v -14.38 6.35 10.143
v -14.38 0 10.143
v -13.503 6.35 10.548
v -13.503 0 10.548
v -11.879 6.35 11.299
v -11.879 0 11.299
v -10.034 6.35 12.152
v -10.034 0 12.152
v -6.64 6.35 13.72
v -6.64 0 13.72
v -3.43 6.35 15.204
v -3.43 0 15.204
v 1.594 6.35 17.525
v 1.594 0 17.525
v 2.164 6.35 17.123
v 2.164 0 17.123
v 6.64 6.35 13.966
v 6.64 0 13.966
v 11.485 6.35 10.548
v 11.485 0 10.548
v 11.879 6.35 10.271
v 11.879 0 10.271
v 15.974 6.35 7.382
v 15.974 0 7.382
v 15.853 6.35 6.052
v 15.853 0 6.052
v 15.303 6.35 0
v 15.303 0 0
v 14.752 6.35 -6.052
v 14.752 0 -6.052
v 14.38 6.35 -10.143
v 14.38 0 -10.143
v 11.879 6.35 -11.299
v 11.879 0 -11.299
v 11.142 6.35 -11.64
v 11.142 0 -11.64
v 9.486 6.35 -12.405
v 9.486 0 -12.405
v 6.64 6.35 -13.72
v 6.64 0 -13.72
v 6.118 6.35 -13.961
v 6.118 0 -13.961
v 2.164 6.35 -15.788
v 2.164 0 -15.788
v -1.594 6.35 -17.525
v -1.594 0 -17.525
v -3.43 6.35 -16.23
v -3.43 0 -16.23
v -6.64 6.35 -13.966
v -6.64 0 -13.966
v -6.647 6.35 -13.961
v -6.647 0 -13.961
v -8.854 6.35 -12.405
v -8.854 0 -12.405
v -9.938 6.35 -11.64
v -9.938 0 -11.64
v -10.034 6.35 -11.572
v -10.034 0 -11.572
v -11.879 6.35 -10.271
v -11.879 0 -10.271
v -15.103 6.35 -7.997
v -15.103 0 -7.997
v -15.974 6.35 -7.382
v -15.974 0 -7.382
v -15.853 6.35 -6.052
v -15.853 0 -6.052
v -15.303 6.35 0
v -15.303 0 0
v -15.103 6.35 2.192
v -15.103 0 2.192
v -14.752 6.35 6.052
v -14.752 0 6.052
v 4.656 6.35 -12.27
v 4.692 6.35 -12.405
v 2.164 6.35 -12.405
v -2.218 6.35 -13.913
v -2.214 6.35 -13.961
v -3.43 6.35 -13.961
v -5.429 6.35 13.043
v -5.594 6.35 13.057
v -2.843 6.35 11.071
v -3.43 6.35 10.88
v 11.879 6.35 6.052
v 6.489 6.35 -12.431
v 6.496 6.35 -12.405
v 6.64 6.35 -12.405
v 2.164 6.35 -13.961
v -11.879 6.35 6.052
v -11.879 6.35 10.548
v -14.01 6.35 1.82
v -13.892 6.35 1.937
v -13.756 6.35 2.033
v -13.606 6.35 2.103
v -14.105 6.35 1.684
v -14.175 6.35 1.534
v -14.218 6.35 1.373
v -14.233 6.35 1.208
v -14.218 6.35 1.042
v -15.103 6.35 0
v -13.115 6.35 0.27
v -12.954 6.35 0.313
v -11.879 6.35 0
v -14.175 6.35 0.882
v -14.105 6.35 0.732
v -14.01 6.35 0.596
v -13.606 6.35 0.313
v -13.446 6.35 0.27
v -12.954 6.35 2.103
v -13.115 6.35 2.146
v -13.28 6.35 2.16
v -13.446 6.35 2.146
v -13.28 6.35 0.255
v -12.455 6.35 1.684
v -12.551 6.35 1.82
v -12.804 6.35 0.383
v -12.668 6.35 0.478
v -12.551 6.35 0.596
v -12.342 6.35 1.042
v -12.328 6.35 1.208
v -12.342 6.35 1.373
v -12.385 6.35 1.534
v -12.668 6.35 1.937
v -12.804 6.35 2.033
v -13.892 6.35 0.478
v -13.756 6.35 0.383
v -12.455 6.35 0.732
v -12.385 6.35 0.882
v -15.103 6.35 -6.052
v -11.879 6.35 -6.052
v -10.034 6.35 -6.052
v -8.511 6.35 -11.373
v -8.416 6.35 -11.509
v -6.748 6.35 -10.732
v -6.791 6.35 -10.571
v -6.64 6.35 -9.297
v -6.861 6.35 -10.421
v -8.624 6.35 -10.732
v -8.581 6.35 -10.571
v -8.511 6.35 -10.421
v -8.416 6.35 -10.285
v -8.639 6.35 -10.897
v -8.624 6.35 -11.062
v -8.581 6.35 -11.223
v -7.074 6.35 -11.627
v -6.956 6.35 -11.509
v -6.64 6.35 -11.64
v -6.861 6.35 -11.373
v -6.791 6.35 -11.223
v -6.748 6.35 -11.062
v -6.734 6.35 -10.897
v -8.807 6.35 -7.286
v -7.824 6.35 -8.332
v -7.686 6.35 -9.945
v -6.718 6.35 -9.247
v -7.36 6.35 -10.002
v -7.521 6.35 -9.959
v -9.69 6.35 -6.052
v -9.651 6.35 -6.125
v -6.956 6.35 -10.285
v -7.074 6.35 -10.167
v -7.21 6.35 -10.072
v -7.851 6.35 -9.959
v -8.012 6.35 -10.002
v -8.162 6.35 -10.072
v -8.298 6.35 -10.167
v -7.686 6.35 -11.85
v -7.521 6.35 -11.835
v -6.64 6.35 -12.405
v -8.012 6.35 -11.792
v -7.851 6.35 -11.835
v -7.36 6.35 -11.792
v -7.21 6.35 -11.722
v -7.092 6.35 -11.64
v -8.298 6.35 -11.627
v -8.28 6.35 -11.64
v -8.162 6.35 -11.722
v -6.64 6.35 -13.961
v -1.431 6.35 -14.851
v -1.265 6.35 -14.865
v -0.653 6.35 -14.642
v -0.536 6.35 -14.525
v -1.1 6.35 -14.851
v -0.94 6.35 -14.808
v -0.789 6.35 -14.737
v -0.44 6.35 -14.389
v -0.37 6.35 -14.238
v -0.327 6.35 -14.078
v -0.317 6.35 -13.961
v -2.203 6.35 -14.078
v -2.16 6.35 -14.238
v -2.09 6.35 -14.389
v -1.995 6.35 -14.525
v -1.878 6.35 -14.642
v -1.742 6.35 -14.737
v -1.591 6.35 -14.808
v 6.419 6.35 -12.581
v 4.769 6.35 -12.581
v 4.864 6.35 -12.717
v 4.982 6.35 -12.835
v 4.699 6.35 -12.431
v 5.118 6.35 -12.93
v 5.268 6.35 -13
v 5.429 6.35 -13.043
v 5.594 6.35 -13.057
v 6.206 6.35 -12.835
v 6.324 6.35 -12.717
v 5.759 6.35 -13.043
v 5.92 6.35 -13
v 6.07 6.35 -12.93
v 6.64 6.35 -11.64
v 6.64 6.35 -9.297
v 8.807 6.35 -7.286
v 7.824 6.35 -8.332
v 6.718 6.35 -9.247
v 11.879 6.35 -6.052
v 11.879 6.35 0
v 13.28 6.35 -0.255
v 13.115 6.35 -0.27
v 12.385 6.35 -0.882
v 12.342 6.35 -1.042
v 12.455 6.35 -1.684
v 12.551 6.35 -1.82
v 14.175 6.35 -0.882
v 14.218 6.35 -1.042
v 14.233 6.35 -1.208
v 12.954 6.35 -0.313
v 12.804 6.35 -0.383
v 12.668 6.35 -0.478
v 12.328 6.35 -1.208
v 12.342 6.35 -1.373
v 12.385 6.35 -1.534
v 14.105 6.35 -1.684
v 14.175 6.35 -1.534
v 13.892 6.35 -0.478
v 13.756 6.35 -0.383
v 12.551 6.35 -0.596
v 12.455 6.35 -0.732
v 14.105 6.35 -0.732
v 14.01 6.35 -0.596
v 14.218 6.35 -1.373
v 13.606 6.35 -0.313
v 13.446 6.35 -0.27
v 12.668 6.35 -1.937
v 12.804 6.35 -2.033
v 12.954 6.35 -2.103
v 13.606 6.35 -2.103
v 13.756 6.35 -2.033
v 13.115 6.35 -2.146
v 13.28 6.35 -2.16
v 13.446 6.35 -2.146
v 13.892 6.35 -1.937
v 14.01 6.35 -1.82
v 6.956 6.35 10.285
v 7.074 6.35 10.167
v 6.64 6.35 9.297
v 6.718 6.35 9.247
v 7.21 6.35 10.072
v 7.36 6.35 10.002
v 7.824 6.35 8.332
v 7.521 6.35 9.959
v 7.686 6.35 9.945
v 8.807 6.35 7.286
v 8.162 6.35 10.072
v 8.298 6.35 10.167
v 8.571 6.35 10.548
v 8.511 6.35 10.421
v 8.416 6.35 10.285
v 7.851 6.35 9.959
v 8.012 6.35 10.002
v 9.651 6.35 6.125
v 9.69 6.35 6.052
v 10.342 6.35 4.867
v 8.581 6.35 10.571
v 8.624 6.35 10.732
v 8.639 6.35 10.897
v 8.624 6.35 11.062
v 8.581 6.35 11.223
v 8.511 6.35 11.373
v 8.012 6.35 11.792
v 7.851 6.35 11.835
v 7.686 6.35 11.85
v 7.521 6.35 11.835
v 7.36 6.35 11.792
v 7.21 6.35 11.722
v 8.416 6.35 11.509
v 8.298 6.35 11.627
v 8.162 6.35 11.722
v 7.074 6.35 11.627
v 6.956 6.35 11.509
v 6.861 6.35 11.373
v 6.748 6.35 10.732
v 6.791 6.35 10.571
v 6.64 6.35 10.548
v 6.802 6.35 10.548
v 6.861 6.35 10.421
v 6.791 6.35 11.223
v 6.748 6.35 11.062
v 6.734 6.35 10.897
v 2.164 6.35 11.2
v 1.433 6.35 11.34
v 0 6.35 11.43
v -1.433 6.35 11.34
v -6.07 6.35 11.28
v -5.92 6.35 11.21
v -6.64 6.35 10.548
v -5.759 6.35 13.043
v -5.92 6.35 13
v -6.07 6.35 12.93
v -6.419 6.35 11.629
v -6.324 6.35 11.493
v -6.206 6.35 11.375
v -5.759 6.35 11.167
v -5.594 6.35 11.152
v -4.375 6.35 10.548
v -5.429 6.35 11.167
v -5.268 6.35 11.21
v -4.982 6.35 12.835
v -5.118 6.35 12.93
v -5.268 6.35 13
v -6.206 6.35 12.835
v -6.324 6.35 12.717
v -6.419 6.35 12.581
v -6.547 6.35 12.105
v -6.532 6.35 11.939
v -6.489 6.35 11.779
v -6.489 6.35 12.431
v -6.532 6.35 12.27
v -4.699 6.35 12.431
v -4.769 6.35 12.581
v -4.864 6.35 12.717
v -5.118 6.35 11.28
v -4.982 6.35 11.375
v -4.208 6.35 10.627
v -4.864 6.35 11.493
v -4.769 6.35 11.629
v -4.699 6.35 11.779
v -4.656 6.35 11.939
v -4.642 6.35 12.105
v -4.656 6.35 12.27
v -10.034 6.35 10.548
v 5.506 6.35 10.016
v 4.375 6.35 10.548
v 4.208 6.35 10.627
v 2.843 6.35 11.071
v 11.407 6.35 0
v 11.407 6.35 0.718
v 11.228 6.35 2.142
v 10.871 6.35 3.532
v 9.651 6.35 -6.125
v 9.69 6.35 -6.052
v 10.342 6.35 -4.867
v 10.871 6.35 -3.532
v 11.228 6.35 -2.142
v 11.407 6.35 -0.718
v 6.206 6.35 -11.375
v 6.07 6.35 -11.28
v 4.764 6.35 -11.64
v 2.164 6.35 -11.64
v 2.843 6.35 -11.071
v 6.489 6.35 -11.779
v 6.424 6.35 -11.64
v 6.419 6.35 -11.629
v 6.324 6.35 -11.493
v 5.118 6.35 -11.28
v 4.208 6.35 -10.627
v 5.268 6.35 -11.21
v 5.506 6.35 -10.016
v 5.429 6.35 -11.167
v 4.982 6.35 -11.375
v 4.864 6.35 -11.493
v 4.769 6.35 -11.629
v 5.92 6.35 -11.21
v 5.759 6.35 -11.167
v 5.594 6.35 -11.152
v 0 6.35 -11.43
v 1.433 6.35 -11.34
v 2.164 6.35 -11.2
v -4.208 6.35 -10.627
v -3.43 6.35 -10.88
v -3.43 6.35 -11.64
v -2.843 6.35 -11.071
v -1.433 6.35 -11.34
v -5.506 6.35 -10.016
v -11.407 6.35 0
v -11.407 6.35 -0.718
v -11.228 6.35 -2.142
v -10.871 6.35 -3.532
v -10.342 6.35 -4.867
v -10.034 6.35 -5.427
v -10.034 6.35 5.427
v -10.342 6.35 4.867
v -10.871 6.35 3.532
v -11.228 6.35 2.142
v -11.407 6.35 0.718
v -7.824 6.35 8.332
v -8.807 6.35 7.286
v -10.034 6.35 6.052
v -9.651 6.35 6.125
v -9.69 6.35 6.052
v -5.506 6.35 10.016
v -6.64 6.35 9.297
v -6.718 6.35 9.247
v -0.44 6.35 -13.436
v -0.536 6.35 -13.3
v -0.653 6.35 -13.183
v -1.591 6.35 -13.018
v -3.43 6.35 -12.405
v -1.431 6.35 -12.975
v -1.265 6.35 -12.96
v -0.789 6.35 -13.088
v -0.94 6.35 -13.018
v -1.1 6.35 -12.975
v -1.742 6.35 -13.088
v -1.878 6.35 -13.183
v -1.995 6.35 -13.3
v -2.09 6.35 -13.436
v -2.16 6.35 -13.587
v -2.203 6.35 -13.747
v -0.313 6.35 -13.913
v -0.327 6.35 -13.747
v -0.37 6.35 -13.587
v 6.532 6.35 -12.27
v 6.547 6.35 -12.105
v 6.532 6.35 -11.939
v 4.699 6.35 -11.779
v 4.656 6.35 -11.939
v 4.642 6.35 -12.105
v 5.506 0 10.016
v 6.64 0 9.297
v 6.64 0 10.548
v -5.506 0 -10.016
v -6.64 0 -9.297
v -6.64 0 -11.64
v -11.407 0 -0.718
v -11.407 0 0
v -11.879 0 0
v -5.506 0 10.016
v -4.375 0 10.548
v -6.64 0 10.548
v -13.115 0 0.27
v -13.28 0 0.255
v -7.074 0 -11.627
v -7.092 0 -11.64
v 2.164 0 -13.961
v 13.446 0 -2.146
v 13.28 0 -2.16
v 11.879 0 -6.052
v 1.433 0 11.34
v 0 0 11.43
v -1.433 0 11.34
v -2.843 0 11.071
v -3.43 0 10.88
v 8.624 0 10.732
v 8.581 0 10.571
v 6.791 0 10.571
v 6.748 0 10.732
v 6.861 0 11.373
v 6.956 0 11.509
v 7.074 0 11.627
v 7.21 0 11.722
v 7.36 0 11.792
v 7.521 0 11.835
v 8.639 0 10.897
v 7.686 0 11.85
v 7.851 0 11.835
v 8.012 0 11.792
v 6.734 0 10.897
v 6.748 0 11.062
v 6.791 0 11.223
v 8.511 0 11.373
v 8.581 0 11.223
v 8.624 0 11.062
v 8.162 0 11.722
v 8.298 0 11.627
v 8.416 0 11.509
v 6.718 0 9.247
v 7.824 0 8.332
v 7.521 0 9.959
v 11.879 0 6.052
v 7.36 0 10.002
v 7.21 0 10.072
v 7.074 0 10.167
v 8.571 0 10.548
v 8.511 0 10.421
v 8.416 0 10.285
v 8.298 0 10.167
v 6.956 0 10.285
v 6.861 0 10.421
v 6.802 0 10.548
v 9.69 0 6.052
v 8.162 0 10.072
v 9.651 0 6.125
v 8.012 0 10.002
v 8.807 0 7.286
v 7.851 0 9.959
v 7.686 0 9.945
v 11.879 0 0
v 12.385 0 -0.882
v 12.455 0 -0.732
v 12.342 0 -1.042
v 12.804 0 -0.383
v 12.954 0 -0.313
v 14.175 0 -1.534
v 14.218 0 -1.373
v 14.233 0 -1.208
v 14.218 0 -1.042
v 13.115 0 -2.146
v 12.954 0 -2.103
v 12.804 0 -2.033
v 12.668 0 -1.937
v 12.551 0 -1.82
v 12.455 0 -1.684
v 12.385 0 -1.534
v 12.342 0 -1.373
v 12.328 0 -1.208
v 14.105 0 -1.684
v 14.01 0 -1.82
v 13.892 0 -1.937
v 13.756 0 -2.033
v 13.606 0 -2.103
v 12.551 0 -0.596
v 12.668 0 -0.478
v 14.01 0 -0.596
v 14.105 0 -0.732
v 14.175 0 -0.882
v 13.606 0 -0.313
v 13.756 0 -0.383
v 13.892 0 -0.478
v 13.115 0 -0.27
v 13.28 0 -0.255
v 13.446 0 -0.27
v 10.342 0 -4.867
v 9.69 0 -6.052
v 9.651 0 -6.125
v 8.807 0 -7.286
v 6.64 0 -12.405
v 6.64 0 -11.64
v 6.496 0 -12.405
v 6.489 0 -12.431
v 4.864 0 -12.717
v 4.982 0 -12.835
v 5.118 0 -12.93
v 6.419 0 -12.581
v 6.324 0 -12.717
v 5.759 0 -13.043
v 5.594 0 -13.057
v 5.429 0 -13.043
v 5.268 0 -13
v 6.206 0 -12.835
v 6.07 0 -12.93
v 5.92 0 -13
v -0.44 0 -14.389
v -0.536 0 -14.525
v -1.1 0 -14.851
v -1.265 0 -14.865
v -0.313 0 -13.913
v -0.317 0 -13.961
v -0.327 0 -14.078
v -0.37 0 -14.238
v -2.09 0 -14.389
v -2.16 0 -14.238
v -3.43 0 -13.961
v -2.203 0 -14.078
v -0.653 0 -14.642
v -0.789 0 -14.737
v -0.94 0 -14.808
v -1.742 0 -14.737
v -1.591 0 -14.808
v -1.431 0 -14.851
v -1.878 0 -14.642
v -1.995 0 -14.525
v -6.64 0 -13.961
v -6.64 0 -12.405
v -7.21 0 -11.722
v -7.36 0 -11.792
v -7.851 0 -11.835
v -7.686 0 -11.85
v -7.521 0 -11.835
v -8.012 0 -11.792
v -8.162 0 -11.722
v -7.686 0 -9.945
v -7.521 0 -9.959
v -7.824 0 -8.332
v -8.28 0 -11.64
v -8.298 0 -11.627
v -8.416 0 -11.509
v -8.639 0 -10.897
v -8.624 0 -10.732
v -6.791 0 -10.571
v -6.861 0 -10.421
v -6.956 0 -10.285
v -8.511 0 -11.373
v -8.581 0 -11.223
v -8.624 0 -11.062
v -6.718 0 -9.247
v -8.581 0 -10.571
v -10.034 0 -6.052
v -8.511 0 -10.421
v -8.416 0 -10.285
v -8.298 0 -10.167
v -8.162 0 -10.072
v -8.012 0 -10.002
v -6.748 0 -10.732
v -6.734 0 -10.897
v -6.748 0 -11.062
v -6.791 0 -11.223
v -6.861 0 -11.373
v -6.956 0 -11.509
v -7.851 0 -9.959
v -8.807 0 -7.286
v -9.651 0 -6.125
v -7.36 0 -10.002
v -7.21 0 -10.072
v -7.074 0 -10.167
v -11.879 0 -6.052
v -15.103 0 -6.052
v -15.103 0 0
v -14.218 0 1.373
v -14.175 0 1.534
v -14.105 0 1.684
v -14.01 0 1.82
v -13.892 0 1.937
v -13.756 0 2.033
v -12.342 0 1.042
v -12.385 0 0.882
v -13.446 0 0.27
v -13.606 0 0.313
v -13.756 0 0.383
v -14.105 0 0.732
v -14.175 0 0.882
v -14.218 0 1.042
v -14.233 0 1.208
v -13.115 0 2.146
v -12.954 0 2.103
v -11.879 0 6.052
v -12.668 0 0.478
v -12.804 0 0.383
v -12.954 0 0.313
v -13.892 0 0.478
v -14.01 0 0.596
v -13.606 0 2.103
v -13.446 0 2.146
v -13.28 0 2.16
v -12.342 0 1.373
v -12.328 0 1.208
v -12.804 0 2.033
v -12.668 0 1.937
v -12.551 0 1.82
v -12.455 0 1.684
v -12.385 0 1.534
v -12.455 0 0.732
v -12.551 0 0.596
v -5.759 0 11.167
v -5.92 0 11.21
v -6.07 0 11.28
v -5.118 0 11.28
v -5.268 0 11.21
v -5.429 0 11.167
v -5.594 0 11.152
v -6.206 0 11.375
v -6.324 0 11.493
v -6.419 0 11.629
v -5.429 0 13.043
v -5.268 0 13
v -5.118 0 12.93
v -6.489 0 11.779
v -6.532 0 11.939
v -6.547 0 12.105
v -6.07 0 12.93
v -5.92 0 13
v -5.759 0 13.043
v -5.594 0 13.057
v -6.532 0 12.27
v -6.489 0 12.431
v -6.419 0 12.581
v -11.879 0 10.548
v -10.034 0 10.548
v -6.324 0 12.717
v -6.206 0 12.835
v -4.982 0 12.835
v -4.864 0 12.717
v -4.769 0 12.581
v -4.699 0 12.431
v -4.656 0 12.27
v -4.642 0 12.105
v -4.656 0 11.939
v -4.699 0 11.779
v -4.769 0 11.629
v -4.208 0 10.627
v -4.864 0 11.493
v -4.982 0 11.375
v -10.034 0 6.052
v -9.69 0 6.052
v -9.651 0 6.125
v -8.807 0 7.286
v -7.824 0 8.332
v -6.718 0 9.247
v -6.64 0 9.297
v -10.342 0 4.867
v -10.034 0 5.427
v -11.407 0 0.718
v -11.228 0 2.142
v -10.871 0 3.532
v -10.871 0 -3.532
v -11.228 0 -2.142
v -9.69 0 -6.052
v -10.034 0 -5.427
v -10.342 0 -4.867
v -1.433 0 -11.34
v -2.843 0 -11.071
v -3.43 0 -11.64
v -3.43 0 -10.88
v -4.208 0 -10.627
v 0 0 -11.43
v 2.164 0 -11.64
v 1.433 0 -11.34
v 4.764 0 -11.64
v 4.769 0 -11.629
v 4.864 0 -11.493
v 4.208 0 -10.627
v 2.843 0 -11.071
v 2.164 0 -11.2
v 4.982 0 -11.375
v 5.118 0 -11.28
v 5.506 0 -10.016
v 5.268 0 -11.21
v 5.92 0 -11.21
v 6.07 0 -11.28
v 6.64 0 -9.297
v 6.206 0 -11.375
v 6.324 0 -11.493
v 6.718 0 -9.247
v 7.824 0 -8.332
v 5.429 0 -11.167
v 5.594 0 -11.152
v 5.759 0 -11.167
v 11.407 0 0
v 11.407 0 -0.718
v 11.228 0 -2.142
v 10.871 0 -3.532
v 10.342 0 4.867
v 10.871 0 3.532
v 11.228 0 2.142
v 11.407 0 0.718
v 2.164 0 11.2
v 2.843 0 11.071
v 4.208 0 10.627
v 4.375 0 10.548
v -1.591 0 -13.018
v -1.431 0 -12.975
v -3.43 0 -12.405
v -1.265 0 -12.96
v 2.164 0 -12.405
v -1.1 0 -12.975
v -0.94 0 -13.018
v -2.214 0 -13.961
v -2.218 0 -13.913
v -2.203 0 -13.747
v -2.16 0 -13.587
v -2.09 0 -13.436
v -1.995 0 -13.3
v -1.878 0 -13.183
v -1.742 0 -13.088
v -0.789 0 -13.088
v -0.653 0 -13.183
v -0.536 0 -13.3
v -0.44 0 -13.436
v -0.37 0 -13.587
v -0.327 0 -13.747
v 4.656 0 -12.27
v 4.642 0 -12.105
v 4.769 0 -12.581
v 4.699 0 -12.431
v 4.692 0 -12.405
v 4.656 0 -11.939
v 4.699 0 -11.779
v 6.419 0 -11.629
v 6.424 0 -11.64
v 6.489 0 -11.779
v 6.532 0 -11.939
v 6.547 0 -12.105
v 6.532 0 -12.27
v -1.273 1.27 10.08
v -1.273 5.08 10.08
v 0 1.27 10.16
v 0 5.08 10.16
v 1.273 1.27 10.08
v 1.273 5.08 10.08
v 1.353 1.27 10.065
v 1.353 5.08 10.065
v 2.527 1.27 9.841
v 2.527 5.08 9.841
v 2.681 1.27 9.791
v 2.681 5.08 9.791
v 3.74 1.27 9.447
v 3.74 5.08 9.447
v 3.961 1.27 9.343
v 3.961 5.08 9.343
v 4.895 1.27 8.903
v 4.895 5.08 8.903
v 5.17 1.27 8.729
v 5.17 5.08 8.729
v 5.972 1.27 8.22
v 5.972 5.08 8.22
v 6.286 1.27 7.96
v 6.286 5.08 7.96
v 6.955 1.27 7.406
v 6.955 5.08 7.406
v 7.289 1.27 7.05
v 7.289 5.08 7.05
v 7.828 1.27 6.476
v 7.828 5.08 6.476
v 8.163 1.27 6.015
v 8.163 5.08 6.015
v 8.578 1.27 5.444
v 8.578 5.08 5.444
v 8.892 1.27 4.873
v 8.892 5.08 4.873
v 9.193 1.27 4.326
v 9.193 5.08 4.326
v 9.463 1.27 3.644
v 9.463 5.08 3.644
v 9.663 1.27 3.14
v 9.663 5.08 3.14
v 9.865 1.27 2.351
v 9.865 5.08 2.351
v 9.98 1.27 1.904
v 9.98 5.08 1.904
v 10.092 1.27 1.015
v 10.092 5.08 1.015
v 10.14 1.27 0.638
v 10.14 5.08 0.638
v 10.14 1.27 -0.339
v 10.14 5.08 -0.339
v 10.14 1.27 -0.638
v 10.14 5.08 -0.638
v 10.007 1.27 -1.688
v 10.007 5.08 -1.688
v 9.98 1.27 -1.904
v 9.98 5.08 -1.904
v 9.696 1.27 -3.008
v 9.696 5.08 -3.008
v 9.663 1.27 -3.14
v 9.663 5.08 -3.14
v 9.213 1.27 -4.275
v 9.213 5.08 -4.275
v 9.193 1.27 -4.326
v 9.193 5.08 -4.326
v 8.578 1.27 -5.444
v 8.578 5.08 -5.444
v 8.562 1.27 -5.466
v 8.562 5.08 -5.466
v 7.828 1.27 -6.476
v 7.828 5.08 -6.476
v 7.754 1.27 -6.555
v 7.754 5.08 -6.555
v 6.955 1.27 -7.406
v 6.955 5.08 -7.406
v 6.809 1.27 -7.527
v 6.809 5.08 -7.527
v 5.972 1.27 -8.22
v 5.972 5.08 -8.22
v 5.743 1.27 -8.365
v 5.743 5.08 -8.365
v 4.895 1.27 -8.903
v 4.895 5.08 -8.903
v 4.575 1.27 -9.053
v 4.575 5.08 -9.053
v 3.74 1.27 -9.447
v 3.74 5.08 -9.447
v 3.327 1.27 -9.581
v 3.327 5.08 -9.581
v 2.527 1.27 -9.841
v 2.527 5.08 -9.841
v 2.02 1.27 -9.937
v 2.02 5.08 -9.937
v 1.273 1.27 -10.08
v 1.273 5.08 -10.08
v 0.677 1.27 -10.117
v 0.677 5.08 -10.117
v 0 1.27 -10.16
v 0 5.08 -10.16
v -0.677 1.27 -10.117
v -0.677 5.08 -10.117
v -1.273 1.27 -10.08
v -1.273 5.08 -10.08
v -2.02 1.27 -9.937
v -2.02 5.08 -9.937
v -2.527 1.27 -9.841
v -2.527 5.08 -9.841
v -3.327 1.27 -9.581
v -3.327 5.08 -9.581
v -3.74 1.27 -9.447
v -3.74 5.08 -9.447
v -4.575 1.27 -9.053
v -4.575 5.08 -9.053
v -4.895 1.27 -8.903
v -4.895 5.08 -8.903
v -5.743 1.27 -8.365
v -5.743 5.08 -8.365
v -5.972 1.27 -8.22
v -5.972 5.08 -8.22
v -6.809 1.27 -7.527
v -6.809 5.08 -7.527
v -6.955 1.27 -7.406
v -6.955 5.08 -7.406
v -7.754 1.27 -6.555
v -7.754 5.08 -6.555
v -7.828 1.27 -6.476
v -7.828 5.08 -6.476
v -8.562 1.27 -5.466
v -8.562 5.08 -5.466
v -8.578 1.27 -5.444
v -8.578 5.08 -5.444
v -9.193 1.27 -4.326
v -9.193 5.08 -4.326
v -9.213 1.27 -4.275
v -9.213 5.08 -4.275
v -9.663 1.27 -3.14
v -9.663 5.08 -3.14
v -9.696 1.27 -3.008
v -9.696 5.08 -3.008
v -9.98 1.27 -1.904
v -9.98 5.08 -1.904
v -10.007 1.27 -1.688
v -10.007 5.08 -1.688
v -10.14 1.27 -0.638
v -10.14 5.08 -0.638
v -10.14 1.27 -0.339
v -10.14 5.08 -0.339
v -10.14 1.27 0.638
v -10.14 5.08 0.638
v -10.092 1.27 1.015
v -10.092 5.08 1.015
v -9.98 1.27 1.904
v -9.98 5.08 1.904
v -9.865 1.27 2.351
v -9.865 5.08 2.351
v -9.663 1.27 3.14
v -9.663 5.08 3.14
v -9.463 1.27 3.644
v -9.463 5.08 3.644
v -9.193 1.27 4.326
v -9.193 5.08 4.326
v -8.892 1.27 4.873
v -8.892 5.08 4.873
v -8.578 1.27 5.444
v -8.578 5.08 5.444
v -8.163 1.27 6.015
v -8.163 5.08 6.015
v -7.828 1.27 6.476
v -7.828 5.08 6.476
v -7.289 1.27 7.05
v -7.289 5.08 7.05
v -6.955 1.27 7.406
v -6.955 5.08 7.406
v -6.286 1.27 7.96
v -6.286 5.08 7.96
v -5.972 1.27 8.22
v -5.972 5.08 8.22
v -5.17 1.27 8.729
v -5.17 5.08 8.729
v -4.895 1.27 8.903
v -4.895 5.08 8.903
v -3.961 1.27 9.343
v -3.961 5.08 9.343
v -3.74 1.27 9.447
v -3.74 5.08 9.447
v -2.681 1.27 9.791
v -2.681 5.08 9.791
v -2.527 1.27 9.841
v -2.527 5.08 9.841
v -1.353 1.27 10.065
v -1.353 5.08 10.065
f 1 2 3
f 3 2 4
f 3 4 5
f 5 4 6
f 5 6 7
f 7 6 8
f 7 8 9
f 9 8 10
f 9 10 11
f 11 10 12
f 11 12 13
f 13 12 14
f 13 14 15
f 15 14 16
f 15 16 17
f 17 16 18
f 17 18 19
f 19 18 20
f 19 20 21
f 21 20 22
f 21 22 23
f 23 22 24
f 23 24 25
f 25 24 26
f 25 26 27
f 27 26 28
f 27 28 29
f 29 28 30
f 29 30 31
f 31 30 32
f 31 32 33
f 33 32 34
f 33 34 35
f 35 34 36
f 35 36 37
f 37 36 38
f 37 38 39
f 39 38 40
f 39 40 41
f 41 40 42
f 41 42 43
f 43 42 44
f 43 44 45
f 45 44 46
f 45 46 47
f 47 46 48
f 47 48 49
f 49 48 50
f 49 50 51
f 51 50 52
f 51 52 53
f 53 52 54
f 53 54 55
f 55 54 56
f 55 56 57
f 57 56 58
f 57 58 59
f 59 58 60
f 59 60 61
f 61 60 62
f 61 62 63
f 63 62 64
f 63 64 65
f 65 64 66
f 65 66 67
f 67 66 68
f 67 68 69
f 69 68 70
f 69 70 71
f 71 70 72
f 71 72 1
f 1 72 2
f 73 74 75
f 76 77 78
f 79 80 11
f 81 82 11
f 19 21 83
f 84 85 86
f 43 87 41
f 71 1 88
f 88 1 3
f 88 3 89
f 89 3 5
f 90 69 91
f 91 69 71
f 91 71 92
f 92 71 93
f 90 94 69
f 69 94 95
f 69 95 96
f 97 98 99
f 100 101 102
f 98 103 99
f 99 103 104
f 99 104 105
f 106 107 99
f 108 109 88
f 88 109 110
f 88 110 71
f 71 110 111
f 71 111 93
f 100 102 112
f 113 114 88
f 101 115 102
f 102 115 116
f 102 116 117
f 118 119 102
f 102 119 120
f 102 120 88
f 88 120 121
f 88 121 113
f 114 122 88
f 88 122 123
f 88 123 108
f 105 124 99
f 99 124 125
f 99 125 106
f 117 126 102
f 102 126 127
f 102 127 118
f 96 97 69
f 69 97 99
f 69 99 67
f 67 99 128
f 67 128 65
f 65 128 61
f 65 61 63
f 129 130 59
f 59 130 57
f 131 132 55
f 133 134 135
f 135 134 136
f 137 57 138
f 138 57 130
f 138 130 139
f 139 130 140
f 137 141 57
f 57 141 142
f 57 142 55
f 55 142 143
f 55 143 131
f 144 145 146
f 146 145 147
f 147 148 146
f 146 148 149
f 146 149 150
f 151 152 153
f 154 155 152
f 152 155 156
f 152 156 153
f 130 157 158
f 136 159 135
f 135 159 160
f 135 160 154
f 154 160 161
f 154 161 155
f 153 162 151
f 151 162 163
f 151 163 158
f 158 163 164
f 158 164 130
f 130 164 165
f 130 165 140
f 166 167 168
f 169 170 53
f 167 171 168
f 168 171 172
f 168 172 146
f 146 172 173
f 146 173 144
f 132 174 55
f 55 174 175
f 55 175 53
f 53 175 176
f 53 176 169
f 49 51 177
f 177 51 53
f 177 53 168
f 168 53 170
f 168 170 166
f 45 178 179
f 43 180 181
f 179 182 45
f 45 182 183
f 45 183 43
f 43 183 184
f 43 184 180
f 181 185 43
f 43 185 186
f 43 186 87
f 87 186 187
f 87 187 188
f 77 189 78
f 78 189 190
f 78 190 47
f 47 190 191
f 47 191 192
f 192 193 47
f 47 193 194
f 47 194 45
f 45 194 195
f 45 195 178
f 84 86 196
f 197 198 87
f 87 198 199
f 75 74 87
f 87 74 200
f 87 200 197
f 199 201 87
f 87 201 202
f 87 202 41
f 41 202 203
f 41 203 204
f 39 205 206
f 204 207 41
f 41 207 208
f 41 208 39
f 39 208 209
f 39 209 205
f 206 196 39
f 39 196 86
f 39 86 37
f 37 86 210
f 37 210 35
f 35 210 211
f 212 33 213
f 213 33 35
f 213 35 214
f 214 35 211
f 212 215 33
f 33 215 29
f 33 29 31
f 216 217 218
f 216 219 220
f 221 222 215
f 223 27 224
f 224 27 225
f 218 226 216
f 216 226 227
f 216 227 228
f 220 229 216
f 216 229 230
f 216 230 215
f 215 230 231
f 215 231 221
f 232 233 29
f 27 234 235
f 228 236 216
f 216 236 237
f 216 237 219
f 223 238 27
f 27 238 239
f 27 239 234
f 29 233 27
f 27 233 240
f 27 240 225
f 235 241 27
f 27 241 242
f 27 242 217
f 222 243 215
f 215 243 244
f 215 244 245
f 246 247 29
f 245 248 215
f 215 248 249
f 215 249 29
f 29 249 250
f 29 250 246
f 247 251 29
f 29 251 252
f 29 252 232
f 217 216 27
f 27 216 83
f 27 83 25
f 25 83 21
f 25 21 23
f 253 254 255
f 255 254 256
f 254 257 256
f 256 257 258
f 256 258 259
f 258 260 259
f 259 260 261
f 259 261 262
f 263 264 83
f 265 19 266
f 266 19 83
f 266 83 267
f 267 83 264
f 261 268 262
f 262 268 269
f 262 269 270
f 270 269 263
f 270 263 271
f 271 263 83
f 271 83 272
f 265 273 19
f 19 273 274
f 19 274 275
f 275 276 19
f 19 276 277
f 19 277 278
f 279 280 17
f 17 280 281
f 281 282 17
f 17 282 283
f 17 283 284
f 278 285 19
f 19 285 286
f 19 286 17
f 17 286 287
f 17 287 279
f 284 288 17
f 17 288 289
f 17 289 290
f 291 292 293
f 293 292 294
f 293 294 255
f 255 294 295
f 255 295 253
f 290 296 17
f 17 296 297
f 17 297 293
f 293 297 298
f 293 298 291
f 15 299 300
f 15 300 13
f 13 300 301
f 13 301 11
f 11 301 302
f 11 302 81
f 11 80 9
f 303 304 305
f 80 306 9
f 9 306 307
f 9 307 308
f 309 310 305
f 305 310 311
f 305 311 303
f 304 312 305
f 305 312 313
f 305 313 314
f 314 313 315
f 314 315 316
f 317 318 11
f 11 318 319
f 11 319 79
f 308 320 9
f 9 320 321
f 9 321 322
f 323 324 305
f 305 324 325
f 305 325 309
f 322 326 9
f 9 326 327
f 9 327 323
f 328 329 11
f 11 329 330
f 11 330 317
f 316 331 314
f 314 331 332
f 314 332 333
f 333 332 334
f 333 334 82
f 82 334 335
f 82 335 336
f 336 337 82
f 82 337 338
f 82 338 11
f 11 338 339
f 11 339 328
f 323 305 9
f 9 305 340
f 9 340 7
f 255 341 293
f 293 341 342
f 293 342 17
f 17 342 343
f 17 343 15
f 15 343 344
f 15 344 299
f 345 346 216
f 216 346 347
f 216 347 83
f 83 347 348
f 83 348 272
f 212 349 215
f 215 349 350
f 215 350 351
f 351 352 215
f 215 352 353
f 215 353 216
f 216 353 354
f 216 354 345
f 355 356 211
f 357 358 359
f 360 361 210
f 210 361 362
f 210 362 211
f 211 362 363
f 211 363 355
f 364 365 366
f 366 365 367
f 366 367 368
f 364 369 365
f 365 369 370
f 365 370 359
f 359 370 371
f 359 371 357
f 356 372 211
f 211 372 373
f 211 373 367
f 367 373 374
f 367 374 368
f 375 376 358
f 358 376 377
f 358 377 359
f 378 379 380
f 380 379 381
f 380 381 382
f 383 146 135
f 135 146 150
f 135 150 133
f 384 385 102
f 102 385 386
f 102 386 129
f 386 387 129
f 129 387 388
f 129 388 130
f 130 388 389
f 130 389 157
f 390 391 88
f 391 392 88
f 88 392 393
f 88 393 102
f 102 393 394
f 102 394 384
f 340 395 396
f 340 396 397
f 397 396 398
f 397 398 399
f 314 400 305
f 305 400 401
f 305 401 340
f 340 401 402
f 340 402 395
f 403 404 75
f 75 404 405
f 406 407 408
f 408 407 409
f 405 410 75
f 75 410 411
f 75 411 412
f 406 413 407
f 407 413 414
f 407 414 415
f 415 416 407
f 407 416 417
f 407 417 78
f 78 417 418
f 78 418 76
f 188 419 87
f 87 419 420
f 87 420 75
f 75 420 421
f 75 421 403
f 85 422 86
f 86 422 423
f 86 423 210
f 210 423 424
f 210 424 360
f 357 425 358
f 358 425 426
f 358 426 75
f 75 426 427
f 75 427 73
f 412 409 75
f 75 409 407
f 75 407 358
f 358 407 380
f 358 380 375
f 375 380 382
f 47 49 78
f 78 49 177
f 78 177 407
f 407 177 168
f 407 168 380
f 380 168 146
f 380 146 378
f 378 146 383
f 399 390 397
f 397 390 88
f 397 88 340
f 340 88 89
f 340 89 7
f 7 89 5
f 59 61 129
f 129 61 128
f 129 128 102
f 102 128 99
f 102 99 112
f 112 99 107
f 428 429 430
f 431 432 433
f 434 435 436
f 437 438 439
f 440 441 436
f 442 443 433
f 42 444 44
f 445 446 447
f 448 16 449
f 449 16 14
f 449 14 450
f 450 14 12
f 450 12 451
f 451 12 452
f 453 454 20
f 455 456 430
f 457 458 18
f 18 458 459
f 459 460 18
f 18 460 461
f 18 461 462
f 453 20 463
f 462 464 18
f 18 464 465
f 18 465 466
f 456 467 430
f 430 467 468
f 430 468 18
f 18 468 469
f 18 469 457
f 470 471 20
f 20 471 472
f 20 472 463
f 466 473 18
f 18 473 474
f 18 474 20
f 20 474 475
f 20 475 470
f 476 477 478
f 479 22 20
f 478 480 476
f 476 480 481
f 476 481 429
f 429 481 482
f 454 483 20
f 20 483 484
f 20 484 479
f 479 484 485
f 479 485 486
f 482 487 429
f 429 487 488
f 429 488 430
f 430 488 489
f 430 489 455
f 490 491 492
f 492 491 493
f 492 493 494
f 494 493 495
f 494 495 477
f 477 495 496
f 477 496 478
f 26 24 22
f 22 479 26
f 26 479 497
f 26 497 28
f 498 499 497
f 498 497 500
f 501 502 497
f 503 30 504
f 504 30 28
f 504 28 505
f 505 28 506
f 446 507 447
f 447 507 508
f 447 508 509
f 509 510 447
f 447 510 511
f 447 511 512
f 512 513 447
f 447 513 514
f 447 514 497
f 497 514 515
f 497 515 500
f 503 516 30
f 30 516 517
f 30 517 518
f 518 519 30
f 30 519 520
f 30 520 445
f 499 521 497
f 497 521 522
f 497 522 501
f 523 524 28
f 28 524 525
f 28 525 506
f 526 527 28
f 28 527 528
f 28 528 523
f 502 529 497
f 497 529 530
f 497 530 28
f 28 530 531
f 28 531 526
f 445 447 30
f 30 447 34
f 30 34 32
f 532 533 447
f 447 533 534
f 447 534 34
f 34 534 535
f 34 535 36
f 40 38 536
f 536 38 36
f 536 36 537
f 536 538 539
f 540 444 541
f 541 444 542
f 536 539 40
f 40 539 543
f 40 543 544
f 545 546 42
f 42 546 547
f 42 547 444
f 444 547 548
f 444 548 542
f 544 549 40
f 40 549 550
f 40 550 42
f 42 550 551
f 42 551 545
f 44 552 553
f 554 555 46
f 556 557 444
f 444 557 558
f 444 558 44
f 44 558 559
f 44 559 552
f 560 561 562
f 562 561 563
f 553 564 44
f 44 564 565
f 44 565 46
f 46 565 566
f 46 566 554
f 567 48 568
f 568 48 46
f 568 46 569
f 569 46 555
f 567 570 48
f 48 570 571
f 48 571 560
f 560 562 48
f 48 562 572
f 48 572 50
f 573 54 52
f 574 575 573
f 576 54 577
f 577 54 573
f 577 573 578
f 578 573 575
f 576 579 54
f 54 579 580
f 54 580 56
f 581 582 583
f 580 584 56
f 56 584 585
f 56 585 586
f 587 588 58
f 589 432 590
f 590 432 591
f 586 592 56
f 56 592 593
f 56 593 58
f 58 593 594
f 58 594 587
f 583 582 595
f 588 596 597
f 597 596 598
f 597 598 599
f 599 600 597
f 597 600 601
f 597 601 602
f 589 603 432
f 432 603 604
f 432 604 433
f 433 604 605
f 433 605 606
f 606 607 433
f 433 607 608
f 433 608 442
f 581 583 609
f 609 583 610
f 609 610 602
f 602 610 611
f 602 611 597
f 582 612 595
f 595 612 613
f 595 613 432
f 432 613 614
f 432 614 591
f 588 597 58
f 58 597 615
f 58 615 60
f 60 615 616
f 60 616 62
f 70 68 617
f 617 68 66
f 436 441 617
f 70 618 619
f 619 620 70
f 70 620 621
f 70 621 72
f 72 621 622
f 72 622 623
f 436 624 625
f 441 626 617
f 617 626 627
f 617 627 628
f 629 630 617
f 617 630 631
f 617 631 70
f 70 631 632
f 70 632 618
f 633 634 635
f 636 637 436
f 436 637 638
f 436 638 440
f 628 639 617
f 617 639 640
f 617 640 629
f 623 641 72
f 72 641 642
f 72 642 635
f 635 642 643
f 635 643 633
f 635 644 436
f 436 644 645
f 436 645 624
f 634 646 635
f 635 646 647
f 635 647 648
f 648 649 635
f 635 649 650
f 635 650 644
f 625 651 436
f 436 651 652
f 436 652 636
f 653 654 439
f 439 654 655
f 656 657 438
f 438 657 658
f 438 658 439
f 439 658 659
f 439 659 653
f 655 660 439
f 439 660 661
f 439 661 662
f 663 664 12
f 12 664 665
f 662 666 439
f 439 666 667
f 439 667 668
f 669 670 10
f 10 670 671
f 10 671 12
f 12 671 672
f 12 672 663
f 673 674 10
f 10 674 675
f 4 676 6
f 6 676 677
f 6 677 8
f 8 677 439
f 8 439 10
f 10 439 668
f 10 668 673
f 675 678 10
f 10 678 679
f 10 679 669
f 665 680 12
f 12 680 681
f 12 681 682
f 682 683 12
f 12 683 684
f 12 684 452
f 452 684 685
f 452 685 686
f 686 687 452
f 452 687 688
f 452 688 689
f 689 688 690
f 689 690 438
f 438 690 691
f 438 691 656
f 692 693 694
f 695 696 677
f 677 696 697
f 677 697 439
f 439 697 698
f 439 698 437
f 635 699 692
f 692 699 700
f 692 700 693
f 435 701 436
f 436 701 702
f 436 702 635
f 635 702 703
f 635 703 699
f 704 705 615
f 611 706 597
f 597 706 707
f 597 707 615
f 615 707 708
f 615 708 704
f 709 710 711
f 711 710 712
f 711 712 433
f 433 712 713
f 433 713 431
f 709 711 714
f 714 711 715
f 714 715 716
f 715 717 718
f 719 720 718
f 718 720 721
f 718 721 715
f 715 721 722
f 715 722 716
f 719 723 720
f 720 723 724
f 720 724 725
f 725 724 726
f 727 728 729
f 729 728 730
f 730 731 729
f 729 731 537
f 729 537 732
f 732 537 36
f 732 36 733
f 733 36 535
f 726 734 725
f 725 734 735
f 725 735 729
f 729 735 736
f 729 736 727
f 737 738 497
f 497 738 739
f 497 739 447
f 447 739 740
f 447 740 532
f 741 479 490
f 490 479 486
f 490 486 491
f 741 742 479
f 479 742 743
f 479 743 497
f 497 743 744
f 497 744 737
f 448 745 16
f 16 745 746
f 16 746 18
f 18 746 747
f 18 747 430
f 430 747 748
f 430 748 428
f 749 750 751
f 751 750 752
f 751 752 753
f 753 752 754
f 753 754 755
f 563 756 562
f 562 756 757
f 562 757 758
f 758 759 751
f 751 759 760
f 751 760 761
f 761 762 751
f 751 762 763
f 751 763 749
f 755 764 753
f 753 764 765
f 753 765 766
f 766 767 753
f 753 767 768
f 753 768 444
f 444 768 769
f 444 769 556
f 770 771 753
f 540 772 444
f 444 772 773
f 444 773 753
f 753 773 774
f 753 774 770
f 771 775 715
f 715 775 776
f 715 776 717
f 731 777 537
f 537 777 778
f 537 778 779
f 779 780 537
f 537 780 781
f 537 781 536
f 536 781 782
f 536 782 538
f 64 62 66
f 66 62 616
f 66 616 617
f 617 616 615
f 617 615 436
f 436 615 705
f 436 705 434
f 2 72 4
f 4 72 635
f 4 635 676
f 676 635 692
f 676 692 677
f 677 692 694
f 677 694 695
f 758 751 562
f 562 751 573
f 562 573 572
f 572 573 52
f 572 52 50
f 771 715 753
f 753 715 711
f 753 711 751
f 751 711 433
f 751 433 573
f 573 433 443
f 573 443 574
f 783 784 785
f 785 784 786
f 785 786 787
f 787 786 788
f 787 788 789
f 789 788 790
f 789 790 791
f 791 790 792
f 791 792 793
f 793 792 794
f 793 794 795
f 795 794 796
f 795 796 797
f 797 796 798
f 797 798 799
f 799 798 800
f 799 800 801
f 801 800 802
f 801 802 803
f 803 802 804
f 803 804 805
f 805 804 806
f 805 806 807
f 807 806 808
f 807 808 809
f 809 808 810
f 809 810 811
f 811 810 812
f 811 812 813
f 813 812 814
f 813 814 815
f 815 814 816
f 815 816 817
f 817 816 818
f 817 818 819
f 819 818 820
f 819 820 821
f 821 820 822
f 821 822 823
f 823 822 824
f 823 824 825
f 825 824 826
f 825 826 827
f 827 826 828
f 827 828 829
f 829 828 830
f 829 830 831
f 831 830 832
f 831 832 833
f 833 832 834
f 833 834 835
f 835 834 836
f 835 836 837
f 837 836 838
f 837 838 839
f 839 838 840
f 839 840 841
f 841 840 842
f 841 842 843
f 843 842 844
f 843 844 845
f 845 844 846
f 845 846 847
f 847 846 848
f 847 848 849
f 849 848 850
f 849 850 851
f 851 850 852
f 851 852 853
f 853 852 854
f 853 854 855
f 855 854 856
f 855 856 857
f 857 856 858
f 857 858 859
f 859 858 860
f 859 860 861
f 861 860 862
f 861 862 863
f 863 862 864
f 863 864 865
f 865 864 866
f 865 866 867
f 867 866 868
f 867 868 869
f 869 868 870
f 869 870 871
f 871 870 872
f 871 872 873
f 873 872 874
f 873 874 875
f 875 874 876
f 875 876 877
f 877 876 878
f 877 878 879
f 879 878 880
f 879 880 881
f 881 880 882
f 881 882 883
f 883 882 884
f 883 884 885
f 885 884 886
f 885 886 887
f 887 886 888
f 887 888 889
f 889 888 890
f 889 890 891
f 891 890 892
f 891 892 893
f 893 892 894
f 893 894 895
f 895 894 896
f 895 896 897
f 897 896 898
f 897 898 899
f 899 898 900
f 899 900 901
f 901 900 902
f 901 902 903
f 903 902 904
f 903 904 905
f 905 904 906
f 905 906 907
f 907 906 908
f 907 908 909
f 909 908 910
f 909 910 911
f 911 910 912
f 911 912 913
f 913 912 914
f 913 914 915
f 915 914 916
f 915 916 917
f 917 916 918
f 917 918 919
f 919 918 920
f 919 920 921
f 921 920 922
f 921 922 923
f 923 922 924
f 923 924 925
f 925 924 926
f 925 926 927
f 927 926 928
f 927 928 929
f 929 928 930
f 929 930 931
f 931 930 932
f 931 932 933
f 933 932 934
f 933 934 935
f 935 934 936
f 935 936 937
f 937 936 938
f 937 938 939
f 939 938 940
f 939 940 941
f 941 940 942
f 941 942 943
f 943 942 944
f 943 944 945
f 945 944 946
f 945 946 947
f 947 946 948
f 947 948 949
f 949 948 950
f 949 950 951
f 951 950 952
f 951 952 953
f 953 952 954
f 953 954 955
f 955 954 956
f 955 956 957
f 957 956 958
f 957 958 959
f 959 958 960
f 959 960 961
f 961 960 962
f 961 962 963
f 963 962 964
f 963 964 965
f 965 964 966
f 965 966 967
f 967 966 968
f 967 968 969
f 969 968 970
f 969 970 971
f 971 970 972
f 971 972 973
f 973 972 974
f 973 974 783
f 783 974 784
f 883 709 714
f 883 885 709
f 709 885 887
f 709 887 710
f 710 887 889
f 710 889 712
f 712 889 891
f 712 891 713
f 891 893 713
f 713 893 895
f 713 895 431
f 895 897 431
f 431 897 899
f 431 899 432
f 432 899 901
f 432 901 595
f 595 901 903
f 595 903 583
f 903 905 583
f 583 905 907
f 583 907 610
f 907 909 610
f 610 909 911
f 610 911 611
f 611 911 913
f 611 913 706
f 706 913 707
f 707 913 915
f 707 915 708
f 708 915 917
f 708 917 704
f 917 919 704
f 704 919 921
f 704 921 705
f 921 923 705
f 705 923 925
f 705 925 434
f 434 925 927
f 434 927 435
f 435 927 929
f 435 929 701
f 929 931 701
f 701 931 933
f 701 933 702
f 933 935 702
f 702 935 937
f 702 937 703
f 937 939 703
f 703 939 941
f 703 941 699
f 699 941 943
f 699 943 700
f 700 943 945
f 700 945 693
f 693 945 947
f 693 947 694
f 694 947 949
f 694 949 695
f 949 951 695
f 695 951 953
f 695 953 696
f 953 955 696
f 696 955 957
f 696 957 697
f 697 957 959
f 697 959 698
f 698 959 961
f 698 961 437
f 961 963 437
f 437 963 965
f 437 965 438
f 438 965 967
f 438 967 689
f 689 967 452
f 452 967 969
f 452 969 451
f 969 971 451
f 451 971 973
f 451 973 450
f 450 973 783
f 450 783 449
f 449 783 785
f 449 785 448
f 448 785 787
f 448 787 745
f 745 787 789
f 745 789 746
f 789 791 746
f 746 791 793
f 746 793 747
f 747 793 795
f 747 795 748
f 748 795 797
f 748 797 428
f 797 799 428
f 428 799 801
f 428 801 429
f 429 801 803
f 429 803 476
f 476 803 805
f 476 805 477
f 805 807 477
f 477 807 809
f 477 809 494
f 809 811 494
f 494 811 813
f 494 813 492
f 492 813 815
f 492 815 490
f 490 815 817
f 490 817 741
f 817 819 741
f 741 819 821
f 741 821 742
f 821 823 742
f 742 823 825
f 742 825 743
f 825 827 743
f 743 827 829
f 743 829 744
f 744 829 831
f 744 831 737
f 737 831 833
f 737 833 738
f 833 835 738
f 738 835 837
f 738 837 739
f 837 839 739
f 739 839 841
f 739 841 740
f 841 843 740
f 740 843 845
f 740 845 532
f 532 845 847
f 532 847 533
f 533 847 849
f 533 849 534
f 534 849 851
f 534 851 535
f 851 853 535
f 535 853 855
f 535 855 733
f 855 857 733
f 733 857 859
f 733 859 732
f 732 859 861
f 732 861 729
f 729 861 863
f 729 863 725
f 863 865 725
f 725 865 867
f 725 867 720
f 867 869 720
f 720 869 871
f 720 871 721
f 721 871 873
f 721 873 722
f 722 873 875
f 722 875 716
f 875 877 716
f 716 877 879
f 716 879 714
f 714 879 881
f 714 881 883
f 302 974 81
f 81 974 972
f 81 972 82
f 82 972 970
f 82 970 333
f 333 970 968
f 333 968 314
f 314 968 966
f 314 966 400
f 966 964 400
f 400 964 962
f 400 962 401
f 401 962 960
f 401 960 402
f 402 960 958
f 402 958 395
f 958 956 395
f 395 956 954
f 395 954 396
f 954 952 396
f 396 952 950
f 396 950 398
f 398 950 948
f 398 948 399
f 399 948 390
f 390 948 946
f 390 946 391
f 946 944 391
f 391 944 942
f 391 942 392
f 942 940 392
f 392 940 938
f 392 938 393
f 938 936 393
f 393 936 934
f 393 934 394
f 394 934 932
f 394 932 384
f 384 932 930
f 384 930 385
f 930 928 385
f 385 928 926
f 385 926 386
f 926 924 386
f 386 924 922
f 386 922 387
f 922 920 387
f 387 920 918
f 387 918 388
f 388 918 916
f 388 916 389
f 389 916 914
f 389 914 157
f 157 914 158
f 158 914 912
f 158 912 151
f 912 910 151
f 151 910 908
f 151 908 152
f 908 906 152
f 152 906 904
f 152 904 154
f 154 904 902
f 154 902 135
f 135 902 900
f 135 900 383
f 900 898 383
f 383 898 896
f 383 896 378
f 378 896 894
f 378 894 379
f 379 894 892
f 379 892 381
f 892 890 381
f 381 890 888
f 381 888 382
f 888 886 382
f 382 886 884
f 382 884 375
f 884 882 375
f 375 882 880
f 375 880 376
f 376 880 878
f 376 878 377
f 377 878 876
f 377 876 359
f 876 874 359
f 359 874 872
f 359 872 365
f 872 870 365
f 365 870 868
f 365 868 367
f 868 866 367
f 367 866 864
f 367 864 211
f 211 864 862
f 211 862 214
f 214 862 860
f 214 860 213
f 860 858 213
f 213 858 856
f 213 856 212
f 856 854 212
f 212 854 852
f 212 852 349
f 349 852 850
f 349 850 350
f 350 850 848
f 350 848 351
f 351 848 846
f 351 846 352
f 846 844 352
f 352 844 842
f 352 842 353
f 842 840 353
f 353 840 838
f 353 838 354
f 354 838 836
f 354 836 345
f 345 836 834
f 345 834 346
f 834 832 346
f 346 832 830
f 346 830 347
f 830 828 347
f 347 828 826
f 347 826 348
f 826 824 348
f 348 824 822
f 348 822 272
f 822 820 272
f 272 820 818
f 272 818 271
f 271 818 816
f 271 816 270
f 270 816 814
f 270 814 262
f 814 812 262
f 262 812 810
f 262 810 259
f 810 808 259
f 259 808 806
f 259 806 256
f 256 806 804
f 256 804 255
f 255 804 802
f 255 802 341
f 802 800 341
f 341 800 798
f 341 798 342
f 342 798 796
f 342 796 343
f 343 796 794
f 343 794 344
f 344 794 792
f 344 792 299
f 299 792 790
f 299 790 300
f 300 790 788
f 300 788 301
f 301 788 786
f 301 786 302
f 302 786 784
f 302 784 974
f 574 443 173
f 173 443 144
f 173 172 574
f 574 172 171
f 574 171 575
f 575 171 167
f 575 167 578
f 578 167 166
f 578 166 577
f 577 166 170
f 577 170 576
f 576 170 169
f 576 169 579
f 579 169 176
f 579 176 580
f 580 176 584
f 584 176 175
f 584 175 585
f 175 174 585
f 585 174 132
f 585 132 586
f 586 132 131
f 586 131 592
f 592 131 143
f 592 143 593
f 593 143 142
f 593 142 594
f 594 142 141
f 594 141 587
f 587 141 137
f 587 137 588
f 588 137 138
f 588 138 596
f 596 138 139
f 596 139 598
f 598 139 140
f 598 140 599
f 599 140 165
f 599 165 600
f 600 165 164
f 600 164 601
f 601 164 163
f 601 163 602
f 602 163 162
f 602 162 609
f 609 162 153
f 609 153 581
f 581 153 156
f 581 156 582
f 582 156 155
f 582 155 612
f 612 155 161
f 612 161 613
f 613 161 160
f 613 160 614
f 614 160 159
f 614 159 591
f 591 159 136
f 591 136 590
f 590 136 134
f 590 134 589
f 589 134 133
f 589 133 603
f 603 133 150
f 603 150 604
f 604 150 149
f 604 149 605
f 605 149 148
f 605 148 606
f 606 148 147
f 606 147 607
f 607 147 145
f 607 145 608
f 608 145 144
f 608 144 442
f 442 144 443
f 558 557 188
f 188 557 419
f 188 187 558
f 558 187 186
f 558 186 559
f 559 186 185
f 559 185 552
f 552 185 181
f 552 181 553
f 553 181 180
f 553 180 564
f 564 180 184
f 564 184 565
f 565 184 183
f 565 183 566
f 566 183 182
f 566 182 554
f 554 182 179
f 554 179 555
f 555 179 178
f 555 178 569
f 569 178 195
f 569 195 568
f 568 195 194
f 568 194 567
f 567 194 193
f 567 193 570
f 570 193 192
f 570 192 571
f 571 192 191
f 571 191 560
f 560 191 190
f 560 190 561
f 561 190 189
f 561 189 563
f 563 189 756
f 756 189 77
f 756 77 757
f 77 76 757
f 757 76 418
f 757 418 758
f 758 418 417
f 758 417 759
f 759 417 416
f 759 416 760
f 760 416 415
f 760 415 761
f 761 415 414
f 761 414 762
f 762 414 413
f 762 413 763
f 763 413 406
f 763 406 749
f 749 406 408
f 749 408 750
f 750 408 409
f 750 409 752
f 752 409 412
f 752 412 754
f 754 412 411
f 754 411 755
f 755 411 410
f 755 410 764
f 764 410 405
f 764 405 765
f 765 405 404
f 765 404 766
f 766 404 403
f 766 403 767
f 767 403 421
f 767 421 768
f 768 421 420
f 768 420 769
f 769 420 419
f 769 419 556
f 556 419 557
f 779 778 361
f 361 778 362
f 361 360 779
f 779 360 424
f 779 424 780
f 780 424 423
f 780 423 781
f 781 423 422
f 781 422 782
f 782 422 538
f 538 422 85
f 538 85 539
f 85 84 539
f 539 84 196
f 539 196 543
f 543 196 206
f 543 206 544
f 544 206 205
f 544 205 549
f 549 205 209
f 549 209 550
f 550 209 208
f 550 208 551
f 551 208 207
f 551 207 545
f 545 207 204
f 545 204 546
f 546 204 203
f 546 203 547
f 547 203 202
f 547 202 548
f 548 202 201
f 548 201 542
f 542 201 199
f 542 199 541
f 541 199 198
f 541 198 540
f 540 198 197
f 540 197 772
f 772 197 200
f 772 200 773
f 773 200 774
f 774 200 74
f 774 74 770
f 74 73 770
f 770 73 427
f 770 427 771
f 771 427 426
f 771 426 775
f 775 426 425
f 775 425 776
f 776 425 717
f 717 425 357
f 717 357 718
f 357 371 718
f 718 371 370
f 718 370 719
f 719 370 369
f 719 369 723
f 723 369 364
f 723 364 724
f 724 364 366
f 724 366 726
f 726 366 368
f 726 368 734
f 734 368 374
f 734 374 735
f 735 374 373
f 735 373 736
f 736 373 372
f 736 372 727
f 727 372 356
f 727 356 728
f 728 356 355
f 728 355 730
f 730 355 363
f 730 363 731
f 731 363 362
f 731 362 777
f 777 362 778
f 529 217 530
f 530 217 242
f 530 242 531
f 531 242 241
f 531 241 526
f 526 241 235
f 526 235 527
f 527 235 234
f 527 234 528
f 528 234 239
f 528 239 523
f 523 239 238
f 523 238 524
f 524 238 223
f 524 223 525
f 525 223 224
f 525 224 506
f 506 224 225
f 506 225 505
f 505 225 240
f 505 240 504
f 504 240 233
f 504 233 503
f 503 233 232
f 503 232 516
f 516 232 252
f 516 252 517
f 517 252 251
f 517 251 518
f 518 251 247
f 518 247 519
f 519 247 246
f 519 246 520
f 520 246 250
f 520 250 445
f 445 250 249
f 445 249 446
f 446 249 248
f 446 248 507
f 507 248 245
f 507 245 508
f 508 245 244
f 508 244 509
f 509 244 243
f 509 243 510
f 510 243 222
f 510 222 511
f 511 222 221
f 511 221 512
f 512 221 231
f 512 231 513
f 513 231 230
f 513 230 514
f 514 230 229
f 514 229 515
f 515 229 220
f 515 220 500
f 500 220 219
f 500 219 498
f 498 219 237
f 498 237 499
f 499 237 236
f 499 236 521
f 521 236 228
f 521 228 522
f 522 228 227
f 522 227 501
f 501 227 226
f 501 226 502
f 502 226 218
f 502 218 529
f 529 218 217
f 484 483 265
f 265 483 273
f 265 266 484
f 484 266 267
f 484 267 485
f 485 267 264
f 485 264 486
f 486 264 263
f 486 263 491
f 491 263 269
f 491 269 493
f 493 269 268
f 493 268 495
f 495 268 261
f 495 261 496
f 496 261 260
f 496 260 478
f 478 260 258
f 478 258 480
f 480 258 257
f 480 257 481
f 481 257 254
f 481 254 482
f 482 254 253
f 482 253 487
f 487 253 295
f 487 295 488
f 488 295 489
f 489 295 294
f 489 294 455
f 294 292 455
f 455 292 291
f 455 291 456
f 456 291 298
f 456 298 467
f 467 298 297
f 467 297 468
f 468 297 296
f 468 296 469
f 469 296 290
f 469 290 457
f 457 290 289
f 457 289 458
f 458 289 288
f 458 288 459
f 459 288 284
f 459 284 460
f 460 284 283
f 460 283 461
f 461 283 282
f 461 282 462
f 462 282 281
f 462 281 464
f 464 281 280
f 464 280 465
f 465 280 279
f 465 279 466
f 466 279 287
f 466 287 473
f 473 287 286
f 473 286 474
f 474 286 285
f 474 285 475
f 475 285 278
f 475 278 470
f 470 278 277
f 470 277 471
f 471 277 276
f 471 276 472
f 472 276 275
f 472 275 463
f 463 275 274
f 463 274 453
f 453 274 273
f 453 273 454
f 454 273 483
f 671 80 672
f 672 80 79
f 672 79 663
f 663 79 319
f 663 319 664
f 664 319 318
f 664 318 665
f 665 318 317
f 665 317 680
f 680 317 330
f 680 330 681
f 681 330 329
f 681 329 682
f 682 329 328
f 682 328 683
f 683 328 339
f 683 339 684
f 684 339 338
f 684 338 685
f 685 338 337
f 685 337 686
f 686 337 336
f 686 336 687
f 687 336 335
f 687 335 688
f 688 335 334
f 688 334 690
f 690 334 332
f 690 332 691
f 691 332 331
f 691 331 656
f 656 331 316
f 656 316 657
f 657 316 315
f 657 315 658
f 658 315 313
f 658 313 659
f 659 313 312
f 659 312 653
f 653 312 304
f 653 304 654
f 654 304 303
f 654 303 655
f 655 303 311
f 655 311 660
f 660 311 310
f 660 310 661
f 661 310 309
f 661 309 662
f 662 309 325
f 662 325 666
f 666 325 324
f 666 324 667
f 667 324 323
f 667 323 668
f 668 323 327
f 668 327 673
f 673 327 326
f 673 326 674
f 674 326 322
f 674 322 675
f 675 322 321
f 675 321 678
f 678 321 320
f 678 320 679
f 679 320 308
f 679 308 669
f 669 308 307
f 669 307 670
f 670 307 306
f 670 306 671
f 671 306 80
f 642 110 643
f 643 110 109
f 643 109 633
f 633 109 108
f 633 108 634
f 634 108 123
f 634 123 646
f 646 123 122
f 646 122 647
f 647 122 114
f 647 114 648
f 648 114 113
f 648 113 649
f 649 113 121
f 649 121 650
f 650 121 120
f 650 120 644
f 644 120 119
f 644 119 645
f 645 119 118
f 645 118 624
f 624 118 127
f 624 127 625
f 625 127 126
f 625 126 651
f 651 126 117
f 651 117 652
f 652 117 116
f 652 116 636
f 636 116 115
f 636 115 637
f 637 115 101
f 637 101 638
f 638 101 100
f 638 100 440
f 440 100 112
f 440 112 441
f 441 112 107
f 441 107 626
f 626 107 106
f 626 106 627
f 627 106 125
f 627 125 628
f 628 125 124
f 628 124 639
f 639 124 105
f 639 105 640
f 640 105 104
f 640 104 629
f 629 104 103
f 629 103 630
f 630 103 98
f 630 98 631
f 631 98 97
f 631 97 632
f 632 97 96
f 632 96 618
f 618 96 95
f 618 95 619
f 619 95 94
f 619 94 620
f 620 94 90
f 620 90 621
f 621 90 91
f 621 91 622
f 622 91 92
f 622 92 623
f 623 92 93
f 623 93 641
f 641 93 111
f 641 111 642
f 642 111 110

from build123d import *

# Parameters (mm, degrees)
BOSS_EXTRUDE1_DEPTH = 6.35
SKETCH2_R           = 10.16
CUT_EXTRUDE1_DEPTH  = 25.548672232
CHAMFER1_SIZE       = 1.27
SKETCH4_R           = 0.9525
CUT_EXTRUDE2_DEPTH  = 25.548672232


with BuildPart() as part:
    # Sketch1 → Boss-Extrude1 (new body)
    with BuildSketch(Plane(origin=(0, 0, 0), x_dir=(1, 0, 0), z_dir=(0, 1, 0))):
        Polygon((1.59389926, -17.525304139), (15.974308223, -7.382294819), (14.380408963, 10.143009319), (-1.59389926, 17.525304139), (-15.974308223, 7.382294819), (-14.380408963, -10.143009319), align=None)
    extrude(amount=BOSS_EXTRUDE1_DEPTH)

    # Sketch2 → Cut-Extrude1 (cut, through all)
    with BuildSketch(Plane(origin=(0, 6.35, 0), x_dir=(1, 0, 0), z_dir=(0, 1, 0))):
        with Locations(Location((0, 0, 0), (0, 0, 270))):
            Circle(SKETCH2_R)
    extrude(amount=-CUT_EXTRUDE1_DEPTH, mode=Mode.SUBTRACT)

    # Chamfer1
    chamfer1_edges = [part.edges().sort_by_distance(p)[0] for p in [
        (0, 0, -10.16),
        (0, 6.35, -10.16),
    ]]
    chamfer(chamfer1_edges, length=CHAMFER1_SIZE)

    # Sketch4 → Cut-Extrude2 (cut, through all)
    with BuildSketch(Plane(origin=(0, 6.35, 0), x_dir=(1, 0, 0), z_dir=(0, 1, 0))):
        with Locations(Location((-7.686090774, 10.897074544, 0), (0, 0, 270))):
            Circle(SKETCH4_R)
        with Locations(Location((5.594097995, 12.104887138, 0), (0, 0, 270))):
            Circle(SKETCH4_R)
        with Locations(Location((13.280188769, 1.207812594, 0), (0, 0, 270))):
            Circle(SKETCH4_R)
        with Locations(Location((7.686090774, -10.897074544, 0), (0, 0, 270))):
            Circle(SKETCH4_R)
        with Locations(Location((-5.594097995, -12.104887138, 0), (0, 0, 270))):
            Circle(SKETCH4_R)
        with Locations(Location((-1.265327479, 13.91257871, 0), (0, 0, 270))):
            Circle(SKETCH4_R)
        with Locations(Location((-13.280188769, -1.207812594, 0), (0, 0, 270))):
            Circle(SKETCH4_R)
    extrude(amount=-CUT_EXTRUDE2_DEPTH, mode=Mode.SUBTRACT)


solid = part.part
